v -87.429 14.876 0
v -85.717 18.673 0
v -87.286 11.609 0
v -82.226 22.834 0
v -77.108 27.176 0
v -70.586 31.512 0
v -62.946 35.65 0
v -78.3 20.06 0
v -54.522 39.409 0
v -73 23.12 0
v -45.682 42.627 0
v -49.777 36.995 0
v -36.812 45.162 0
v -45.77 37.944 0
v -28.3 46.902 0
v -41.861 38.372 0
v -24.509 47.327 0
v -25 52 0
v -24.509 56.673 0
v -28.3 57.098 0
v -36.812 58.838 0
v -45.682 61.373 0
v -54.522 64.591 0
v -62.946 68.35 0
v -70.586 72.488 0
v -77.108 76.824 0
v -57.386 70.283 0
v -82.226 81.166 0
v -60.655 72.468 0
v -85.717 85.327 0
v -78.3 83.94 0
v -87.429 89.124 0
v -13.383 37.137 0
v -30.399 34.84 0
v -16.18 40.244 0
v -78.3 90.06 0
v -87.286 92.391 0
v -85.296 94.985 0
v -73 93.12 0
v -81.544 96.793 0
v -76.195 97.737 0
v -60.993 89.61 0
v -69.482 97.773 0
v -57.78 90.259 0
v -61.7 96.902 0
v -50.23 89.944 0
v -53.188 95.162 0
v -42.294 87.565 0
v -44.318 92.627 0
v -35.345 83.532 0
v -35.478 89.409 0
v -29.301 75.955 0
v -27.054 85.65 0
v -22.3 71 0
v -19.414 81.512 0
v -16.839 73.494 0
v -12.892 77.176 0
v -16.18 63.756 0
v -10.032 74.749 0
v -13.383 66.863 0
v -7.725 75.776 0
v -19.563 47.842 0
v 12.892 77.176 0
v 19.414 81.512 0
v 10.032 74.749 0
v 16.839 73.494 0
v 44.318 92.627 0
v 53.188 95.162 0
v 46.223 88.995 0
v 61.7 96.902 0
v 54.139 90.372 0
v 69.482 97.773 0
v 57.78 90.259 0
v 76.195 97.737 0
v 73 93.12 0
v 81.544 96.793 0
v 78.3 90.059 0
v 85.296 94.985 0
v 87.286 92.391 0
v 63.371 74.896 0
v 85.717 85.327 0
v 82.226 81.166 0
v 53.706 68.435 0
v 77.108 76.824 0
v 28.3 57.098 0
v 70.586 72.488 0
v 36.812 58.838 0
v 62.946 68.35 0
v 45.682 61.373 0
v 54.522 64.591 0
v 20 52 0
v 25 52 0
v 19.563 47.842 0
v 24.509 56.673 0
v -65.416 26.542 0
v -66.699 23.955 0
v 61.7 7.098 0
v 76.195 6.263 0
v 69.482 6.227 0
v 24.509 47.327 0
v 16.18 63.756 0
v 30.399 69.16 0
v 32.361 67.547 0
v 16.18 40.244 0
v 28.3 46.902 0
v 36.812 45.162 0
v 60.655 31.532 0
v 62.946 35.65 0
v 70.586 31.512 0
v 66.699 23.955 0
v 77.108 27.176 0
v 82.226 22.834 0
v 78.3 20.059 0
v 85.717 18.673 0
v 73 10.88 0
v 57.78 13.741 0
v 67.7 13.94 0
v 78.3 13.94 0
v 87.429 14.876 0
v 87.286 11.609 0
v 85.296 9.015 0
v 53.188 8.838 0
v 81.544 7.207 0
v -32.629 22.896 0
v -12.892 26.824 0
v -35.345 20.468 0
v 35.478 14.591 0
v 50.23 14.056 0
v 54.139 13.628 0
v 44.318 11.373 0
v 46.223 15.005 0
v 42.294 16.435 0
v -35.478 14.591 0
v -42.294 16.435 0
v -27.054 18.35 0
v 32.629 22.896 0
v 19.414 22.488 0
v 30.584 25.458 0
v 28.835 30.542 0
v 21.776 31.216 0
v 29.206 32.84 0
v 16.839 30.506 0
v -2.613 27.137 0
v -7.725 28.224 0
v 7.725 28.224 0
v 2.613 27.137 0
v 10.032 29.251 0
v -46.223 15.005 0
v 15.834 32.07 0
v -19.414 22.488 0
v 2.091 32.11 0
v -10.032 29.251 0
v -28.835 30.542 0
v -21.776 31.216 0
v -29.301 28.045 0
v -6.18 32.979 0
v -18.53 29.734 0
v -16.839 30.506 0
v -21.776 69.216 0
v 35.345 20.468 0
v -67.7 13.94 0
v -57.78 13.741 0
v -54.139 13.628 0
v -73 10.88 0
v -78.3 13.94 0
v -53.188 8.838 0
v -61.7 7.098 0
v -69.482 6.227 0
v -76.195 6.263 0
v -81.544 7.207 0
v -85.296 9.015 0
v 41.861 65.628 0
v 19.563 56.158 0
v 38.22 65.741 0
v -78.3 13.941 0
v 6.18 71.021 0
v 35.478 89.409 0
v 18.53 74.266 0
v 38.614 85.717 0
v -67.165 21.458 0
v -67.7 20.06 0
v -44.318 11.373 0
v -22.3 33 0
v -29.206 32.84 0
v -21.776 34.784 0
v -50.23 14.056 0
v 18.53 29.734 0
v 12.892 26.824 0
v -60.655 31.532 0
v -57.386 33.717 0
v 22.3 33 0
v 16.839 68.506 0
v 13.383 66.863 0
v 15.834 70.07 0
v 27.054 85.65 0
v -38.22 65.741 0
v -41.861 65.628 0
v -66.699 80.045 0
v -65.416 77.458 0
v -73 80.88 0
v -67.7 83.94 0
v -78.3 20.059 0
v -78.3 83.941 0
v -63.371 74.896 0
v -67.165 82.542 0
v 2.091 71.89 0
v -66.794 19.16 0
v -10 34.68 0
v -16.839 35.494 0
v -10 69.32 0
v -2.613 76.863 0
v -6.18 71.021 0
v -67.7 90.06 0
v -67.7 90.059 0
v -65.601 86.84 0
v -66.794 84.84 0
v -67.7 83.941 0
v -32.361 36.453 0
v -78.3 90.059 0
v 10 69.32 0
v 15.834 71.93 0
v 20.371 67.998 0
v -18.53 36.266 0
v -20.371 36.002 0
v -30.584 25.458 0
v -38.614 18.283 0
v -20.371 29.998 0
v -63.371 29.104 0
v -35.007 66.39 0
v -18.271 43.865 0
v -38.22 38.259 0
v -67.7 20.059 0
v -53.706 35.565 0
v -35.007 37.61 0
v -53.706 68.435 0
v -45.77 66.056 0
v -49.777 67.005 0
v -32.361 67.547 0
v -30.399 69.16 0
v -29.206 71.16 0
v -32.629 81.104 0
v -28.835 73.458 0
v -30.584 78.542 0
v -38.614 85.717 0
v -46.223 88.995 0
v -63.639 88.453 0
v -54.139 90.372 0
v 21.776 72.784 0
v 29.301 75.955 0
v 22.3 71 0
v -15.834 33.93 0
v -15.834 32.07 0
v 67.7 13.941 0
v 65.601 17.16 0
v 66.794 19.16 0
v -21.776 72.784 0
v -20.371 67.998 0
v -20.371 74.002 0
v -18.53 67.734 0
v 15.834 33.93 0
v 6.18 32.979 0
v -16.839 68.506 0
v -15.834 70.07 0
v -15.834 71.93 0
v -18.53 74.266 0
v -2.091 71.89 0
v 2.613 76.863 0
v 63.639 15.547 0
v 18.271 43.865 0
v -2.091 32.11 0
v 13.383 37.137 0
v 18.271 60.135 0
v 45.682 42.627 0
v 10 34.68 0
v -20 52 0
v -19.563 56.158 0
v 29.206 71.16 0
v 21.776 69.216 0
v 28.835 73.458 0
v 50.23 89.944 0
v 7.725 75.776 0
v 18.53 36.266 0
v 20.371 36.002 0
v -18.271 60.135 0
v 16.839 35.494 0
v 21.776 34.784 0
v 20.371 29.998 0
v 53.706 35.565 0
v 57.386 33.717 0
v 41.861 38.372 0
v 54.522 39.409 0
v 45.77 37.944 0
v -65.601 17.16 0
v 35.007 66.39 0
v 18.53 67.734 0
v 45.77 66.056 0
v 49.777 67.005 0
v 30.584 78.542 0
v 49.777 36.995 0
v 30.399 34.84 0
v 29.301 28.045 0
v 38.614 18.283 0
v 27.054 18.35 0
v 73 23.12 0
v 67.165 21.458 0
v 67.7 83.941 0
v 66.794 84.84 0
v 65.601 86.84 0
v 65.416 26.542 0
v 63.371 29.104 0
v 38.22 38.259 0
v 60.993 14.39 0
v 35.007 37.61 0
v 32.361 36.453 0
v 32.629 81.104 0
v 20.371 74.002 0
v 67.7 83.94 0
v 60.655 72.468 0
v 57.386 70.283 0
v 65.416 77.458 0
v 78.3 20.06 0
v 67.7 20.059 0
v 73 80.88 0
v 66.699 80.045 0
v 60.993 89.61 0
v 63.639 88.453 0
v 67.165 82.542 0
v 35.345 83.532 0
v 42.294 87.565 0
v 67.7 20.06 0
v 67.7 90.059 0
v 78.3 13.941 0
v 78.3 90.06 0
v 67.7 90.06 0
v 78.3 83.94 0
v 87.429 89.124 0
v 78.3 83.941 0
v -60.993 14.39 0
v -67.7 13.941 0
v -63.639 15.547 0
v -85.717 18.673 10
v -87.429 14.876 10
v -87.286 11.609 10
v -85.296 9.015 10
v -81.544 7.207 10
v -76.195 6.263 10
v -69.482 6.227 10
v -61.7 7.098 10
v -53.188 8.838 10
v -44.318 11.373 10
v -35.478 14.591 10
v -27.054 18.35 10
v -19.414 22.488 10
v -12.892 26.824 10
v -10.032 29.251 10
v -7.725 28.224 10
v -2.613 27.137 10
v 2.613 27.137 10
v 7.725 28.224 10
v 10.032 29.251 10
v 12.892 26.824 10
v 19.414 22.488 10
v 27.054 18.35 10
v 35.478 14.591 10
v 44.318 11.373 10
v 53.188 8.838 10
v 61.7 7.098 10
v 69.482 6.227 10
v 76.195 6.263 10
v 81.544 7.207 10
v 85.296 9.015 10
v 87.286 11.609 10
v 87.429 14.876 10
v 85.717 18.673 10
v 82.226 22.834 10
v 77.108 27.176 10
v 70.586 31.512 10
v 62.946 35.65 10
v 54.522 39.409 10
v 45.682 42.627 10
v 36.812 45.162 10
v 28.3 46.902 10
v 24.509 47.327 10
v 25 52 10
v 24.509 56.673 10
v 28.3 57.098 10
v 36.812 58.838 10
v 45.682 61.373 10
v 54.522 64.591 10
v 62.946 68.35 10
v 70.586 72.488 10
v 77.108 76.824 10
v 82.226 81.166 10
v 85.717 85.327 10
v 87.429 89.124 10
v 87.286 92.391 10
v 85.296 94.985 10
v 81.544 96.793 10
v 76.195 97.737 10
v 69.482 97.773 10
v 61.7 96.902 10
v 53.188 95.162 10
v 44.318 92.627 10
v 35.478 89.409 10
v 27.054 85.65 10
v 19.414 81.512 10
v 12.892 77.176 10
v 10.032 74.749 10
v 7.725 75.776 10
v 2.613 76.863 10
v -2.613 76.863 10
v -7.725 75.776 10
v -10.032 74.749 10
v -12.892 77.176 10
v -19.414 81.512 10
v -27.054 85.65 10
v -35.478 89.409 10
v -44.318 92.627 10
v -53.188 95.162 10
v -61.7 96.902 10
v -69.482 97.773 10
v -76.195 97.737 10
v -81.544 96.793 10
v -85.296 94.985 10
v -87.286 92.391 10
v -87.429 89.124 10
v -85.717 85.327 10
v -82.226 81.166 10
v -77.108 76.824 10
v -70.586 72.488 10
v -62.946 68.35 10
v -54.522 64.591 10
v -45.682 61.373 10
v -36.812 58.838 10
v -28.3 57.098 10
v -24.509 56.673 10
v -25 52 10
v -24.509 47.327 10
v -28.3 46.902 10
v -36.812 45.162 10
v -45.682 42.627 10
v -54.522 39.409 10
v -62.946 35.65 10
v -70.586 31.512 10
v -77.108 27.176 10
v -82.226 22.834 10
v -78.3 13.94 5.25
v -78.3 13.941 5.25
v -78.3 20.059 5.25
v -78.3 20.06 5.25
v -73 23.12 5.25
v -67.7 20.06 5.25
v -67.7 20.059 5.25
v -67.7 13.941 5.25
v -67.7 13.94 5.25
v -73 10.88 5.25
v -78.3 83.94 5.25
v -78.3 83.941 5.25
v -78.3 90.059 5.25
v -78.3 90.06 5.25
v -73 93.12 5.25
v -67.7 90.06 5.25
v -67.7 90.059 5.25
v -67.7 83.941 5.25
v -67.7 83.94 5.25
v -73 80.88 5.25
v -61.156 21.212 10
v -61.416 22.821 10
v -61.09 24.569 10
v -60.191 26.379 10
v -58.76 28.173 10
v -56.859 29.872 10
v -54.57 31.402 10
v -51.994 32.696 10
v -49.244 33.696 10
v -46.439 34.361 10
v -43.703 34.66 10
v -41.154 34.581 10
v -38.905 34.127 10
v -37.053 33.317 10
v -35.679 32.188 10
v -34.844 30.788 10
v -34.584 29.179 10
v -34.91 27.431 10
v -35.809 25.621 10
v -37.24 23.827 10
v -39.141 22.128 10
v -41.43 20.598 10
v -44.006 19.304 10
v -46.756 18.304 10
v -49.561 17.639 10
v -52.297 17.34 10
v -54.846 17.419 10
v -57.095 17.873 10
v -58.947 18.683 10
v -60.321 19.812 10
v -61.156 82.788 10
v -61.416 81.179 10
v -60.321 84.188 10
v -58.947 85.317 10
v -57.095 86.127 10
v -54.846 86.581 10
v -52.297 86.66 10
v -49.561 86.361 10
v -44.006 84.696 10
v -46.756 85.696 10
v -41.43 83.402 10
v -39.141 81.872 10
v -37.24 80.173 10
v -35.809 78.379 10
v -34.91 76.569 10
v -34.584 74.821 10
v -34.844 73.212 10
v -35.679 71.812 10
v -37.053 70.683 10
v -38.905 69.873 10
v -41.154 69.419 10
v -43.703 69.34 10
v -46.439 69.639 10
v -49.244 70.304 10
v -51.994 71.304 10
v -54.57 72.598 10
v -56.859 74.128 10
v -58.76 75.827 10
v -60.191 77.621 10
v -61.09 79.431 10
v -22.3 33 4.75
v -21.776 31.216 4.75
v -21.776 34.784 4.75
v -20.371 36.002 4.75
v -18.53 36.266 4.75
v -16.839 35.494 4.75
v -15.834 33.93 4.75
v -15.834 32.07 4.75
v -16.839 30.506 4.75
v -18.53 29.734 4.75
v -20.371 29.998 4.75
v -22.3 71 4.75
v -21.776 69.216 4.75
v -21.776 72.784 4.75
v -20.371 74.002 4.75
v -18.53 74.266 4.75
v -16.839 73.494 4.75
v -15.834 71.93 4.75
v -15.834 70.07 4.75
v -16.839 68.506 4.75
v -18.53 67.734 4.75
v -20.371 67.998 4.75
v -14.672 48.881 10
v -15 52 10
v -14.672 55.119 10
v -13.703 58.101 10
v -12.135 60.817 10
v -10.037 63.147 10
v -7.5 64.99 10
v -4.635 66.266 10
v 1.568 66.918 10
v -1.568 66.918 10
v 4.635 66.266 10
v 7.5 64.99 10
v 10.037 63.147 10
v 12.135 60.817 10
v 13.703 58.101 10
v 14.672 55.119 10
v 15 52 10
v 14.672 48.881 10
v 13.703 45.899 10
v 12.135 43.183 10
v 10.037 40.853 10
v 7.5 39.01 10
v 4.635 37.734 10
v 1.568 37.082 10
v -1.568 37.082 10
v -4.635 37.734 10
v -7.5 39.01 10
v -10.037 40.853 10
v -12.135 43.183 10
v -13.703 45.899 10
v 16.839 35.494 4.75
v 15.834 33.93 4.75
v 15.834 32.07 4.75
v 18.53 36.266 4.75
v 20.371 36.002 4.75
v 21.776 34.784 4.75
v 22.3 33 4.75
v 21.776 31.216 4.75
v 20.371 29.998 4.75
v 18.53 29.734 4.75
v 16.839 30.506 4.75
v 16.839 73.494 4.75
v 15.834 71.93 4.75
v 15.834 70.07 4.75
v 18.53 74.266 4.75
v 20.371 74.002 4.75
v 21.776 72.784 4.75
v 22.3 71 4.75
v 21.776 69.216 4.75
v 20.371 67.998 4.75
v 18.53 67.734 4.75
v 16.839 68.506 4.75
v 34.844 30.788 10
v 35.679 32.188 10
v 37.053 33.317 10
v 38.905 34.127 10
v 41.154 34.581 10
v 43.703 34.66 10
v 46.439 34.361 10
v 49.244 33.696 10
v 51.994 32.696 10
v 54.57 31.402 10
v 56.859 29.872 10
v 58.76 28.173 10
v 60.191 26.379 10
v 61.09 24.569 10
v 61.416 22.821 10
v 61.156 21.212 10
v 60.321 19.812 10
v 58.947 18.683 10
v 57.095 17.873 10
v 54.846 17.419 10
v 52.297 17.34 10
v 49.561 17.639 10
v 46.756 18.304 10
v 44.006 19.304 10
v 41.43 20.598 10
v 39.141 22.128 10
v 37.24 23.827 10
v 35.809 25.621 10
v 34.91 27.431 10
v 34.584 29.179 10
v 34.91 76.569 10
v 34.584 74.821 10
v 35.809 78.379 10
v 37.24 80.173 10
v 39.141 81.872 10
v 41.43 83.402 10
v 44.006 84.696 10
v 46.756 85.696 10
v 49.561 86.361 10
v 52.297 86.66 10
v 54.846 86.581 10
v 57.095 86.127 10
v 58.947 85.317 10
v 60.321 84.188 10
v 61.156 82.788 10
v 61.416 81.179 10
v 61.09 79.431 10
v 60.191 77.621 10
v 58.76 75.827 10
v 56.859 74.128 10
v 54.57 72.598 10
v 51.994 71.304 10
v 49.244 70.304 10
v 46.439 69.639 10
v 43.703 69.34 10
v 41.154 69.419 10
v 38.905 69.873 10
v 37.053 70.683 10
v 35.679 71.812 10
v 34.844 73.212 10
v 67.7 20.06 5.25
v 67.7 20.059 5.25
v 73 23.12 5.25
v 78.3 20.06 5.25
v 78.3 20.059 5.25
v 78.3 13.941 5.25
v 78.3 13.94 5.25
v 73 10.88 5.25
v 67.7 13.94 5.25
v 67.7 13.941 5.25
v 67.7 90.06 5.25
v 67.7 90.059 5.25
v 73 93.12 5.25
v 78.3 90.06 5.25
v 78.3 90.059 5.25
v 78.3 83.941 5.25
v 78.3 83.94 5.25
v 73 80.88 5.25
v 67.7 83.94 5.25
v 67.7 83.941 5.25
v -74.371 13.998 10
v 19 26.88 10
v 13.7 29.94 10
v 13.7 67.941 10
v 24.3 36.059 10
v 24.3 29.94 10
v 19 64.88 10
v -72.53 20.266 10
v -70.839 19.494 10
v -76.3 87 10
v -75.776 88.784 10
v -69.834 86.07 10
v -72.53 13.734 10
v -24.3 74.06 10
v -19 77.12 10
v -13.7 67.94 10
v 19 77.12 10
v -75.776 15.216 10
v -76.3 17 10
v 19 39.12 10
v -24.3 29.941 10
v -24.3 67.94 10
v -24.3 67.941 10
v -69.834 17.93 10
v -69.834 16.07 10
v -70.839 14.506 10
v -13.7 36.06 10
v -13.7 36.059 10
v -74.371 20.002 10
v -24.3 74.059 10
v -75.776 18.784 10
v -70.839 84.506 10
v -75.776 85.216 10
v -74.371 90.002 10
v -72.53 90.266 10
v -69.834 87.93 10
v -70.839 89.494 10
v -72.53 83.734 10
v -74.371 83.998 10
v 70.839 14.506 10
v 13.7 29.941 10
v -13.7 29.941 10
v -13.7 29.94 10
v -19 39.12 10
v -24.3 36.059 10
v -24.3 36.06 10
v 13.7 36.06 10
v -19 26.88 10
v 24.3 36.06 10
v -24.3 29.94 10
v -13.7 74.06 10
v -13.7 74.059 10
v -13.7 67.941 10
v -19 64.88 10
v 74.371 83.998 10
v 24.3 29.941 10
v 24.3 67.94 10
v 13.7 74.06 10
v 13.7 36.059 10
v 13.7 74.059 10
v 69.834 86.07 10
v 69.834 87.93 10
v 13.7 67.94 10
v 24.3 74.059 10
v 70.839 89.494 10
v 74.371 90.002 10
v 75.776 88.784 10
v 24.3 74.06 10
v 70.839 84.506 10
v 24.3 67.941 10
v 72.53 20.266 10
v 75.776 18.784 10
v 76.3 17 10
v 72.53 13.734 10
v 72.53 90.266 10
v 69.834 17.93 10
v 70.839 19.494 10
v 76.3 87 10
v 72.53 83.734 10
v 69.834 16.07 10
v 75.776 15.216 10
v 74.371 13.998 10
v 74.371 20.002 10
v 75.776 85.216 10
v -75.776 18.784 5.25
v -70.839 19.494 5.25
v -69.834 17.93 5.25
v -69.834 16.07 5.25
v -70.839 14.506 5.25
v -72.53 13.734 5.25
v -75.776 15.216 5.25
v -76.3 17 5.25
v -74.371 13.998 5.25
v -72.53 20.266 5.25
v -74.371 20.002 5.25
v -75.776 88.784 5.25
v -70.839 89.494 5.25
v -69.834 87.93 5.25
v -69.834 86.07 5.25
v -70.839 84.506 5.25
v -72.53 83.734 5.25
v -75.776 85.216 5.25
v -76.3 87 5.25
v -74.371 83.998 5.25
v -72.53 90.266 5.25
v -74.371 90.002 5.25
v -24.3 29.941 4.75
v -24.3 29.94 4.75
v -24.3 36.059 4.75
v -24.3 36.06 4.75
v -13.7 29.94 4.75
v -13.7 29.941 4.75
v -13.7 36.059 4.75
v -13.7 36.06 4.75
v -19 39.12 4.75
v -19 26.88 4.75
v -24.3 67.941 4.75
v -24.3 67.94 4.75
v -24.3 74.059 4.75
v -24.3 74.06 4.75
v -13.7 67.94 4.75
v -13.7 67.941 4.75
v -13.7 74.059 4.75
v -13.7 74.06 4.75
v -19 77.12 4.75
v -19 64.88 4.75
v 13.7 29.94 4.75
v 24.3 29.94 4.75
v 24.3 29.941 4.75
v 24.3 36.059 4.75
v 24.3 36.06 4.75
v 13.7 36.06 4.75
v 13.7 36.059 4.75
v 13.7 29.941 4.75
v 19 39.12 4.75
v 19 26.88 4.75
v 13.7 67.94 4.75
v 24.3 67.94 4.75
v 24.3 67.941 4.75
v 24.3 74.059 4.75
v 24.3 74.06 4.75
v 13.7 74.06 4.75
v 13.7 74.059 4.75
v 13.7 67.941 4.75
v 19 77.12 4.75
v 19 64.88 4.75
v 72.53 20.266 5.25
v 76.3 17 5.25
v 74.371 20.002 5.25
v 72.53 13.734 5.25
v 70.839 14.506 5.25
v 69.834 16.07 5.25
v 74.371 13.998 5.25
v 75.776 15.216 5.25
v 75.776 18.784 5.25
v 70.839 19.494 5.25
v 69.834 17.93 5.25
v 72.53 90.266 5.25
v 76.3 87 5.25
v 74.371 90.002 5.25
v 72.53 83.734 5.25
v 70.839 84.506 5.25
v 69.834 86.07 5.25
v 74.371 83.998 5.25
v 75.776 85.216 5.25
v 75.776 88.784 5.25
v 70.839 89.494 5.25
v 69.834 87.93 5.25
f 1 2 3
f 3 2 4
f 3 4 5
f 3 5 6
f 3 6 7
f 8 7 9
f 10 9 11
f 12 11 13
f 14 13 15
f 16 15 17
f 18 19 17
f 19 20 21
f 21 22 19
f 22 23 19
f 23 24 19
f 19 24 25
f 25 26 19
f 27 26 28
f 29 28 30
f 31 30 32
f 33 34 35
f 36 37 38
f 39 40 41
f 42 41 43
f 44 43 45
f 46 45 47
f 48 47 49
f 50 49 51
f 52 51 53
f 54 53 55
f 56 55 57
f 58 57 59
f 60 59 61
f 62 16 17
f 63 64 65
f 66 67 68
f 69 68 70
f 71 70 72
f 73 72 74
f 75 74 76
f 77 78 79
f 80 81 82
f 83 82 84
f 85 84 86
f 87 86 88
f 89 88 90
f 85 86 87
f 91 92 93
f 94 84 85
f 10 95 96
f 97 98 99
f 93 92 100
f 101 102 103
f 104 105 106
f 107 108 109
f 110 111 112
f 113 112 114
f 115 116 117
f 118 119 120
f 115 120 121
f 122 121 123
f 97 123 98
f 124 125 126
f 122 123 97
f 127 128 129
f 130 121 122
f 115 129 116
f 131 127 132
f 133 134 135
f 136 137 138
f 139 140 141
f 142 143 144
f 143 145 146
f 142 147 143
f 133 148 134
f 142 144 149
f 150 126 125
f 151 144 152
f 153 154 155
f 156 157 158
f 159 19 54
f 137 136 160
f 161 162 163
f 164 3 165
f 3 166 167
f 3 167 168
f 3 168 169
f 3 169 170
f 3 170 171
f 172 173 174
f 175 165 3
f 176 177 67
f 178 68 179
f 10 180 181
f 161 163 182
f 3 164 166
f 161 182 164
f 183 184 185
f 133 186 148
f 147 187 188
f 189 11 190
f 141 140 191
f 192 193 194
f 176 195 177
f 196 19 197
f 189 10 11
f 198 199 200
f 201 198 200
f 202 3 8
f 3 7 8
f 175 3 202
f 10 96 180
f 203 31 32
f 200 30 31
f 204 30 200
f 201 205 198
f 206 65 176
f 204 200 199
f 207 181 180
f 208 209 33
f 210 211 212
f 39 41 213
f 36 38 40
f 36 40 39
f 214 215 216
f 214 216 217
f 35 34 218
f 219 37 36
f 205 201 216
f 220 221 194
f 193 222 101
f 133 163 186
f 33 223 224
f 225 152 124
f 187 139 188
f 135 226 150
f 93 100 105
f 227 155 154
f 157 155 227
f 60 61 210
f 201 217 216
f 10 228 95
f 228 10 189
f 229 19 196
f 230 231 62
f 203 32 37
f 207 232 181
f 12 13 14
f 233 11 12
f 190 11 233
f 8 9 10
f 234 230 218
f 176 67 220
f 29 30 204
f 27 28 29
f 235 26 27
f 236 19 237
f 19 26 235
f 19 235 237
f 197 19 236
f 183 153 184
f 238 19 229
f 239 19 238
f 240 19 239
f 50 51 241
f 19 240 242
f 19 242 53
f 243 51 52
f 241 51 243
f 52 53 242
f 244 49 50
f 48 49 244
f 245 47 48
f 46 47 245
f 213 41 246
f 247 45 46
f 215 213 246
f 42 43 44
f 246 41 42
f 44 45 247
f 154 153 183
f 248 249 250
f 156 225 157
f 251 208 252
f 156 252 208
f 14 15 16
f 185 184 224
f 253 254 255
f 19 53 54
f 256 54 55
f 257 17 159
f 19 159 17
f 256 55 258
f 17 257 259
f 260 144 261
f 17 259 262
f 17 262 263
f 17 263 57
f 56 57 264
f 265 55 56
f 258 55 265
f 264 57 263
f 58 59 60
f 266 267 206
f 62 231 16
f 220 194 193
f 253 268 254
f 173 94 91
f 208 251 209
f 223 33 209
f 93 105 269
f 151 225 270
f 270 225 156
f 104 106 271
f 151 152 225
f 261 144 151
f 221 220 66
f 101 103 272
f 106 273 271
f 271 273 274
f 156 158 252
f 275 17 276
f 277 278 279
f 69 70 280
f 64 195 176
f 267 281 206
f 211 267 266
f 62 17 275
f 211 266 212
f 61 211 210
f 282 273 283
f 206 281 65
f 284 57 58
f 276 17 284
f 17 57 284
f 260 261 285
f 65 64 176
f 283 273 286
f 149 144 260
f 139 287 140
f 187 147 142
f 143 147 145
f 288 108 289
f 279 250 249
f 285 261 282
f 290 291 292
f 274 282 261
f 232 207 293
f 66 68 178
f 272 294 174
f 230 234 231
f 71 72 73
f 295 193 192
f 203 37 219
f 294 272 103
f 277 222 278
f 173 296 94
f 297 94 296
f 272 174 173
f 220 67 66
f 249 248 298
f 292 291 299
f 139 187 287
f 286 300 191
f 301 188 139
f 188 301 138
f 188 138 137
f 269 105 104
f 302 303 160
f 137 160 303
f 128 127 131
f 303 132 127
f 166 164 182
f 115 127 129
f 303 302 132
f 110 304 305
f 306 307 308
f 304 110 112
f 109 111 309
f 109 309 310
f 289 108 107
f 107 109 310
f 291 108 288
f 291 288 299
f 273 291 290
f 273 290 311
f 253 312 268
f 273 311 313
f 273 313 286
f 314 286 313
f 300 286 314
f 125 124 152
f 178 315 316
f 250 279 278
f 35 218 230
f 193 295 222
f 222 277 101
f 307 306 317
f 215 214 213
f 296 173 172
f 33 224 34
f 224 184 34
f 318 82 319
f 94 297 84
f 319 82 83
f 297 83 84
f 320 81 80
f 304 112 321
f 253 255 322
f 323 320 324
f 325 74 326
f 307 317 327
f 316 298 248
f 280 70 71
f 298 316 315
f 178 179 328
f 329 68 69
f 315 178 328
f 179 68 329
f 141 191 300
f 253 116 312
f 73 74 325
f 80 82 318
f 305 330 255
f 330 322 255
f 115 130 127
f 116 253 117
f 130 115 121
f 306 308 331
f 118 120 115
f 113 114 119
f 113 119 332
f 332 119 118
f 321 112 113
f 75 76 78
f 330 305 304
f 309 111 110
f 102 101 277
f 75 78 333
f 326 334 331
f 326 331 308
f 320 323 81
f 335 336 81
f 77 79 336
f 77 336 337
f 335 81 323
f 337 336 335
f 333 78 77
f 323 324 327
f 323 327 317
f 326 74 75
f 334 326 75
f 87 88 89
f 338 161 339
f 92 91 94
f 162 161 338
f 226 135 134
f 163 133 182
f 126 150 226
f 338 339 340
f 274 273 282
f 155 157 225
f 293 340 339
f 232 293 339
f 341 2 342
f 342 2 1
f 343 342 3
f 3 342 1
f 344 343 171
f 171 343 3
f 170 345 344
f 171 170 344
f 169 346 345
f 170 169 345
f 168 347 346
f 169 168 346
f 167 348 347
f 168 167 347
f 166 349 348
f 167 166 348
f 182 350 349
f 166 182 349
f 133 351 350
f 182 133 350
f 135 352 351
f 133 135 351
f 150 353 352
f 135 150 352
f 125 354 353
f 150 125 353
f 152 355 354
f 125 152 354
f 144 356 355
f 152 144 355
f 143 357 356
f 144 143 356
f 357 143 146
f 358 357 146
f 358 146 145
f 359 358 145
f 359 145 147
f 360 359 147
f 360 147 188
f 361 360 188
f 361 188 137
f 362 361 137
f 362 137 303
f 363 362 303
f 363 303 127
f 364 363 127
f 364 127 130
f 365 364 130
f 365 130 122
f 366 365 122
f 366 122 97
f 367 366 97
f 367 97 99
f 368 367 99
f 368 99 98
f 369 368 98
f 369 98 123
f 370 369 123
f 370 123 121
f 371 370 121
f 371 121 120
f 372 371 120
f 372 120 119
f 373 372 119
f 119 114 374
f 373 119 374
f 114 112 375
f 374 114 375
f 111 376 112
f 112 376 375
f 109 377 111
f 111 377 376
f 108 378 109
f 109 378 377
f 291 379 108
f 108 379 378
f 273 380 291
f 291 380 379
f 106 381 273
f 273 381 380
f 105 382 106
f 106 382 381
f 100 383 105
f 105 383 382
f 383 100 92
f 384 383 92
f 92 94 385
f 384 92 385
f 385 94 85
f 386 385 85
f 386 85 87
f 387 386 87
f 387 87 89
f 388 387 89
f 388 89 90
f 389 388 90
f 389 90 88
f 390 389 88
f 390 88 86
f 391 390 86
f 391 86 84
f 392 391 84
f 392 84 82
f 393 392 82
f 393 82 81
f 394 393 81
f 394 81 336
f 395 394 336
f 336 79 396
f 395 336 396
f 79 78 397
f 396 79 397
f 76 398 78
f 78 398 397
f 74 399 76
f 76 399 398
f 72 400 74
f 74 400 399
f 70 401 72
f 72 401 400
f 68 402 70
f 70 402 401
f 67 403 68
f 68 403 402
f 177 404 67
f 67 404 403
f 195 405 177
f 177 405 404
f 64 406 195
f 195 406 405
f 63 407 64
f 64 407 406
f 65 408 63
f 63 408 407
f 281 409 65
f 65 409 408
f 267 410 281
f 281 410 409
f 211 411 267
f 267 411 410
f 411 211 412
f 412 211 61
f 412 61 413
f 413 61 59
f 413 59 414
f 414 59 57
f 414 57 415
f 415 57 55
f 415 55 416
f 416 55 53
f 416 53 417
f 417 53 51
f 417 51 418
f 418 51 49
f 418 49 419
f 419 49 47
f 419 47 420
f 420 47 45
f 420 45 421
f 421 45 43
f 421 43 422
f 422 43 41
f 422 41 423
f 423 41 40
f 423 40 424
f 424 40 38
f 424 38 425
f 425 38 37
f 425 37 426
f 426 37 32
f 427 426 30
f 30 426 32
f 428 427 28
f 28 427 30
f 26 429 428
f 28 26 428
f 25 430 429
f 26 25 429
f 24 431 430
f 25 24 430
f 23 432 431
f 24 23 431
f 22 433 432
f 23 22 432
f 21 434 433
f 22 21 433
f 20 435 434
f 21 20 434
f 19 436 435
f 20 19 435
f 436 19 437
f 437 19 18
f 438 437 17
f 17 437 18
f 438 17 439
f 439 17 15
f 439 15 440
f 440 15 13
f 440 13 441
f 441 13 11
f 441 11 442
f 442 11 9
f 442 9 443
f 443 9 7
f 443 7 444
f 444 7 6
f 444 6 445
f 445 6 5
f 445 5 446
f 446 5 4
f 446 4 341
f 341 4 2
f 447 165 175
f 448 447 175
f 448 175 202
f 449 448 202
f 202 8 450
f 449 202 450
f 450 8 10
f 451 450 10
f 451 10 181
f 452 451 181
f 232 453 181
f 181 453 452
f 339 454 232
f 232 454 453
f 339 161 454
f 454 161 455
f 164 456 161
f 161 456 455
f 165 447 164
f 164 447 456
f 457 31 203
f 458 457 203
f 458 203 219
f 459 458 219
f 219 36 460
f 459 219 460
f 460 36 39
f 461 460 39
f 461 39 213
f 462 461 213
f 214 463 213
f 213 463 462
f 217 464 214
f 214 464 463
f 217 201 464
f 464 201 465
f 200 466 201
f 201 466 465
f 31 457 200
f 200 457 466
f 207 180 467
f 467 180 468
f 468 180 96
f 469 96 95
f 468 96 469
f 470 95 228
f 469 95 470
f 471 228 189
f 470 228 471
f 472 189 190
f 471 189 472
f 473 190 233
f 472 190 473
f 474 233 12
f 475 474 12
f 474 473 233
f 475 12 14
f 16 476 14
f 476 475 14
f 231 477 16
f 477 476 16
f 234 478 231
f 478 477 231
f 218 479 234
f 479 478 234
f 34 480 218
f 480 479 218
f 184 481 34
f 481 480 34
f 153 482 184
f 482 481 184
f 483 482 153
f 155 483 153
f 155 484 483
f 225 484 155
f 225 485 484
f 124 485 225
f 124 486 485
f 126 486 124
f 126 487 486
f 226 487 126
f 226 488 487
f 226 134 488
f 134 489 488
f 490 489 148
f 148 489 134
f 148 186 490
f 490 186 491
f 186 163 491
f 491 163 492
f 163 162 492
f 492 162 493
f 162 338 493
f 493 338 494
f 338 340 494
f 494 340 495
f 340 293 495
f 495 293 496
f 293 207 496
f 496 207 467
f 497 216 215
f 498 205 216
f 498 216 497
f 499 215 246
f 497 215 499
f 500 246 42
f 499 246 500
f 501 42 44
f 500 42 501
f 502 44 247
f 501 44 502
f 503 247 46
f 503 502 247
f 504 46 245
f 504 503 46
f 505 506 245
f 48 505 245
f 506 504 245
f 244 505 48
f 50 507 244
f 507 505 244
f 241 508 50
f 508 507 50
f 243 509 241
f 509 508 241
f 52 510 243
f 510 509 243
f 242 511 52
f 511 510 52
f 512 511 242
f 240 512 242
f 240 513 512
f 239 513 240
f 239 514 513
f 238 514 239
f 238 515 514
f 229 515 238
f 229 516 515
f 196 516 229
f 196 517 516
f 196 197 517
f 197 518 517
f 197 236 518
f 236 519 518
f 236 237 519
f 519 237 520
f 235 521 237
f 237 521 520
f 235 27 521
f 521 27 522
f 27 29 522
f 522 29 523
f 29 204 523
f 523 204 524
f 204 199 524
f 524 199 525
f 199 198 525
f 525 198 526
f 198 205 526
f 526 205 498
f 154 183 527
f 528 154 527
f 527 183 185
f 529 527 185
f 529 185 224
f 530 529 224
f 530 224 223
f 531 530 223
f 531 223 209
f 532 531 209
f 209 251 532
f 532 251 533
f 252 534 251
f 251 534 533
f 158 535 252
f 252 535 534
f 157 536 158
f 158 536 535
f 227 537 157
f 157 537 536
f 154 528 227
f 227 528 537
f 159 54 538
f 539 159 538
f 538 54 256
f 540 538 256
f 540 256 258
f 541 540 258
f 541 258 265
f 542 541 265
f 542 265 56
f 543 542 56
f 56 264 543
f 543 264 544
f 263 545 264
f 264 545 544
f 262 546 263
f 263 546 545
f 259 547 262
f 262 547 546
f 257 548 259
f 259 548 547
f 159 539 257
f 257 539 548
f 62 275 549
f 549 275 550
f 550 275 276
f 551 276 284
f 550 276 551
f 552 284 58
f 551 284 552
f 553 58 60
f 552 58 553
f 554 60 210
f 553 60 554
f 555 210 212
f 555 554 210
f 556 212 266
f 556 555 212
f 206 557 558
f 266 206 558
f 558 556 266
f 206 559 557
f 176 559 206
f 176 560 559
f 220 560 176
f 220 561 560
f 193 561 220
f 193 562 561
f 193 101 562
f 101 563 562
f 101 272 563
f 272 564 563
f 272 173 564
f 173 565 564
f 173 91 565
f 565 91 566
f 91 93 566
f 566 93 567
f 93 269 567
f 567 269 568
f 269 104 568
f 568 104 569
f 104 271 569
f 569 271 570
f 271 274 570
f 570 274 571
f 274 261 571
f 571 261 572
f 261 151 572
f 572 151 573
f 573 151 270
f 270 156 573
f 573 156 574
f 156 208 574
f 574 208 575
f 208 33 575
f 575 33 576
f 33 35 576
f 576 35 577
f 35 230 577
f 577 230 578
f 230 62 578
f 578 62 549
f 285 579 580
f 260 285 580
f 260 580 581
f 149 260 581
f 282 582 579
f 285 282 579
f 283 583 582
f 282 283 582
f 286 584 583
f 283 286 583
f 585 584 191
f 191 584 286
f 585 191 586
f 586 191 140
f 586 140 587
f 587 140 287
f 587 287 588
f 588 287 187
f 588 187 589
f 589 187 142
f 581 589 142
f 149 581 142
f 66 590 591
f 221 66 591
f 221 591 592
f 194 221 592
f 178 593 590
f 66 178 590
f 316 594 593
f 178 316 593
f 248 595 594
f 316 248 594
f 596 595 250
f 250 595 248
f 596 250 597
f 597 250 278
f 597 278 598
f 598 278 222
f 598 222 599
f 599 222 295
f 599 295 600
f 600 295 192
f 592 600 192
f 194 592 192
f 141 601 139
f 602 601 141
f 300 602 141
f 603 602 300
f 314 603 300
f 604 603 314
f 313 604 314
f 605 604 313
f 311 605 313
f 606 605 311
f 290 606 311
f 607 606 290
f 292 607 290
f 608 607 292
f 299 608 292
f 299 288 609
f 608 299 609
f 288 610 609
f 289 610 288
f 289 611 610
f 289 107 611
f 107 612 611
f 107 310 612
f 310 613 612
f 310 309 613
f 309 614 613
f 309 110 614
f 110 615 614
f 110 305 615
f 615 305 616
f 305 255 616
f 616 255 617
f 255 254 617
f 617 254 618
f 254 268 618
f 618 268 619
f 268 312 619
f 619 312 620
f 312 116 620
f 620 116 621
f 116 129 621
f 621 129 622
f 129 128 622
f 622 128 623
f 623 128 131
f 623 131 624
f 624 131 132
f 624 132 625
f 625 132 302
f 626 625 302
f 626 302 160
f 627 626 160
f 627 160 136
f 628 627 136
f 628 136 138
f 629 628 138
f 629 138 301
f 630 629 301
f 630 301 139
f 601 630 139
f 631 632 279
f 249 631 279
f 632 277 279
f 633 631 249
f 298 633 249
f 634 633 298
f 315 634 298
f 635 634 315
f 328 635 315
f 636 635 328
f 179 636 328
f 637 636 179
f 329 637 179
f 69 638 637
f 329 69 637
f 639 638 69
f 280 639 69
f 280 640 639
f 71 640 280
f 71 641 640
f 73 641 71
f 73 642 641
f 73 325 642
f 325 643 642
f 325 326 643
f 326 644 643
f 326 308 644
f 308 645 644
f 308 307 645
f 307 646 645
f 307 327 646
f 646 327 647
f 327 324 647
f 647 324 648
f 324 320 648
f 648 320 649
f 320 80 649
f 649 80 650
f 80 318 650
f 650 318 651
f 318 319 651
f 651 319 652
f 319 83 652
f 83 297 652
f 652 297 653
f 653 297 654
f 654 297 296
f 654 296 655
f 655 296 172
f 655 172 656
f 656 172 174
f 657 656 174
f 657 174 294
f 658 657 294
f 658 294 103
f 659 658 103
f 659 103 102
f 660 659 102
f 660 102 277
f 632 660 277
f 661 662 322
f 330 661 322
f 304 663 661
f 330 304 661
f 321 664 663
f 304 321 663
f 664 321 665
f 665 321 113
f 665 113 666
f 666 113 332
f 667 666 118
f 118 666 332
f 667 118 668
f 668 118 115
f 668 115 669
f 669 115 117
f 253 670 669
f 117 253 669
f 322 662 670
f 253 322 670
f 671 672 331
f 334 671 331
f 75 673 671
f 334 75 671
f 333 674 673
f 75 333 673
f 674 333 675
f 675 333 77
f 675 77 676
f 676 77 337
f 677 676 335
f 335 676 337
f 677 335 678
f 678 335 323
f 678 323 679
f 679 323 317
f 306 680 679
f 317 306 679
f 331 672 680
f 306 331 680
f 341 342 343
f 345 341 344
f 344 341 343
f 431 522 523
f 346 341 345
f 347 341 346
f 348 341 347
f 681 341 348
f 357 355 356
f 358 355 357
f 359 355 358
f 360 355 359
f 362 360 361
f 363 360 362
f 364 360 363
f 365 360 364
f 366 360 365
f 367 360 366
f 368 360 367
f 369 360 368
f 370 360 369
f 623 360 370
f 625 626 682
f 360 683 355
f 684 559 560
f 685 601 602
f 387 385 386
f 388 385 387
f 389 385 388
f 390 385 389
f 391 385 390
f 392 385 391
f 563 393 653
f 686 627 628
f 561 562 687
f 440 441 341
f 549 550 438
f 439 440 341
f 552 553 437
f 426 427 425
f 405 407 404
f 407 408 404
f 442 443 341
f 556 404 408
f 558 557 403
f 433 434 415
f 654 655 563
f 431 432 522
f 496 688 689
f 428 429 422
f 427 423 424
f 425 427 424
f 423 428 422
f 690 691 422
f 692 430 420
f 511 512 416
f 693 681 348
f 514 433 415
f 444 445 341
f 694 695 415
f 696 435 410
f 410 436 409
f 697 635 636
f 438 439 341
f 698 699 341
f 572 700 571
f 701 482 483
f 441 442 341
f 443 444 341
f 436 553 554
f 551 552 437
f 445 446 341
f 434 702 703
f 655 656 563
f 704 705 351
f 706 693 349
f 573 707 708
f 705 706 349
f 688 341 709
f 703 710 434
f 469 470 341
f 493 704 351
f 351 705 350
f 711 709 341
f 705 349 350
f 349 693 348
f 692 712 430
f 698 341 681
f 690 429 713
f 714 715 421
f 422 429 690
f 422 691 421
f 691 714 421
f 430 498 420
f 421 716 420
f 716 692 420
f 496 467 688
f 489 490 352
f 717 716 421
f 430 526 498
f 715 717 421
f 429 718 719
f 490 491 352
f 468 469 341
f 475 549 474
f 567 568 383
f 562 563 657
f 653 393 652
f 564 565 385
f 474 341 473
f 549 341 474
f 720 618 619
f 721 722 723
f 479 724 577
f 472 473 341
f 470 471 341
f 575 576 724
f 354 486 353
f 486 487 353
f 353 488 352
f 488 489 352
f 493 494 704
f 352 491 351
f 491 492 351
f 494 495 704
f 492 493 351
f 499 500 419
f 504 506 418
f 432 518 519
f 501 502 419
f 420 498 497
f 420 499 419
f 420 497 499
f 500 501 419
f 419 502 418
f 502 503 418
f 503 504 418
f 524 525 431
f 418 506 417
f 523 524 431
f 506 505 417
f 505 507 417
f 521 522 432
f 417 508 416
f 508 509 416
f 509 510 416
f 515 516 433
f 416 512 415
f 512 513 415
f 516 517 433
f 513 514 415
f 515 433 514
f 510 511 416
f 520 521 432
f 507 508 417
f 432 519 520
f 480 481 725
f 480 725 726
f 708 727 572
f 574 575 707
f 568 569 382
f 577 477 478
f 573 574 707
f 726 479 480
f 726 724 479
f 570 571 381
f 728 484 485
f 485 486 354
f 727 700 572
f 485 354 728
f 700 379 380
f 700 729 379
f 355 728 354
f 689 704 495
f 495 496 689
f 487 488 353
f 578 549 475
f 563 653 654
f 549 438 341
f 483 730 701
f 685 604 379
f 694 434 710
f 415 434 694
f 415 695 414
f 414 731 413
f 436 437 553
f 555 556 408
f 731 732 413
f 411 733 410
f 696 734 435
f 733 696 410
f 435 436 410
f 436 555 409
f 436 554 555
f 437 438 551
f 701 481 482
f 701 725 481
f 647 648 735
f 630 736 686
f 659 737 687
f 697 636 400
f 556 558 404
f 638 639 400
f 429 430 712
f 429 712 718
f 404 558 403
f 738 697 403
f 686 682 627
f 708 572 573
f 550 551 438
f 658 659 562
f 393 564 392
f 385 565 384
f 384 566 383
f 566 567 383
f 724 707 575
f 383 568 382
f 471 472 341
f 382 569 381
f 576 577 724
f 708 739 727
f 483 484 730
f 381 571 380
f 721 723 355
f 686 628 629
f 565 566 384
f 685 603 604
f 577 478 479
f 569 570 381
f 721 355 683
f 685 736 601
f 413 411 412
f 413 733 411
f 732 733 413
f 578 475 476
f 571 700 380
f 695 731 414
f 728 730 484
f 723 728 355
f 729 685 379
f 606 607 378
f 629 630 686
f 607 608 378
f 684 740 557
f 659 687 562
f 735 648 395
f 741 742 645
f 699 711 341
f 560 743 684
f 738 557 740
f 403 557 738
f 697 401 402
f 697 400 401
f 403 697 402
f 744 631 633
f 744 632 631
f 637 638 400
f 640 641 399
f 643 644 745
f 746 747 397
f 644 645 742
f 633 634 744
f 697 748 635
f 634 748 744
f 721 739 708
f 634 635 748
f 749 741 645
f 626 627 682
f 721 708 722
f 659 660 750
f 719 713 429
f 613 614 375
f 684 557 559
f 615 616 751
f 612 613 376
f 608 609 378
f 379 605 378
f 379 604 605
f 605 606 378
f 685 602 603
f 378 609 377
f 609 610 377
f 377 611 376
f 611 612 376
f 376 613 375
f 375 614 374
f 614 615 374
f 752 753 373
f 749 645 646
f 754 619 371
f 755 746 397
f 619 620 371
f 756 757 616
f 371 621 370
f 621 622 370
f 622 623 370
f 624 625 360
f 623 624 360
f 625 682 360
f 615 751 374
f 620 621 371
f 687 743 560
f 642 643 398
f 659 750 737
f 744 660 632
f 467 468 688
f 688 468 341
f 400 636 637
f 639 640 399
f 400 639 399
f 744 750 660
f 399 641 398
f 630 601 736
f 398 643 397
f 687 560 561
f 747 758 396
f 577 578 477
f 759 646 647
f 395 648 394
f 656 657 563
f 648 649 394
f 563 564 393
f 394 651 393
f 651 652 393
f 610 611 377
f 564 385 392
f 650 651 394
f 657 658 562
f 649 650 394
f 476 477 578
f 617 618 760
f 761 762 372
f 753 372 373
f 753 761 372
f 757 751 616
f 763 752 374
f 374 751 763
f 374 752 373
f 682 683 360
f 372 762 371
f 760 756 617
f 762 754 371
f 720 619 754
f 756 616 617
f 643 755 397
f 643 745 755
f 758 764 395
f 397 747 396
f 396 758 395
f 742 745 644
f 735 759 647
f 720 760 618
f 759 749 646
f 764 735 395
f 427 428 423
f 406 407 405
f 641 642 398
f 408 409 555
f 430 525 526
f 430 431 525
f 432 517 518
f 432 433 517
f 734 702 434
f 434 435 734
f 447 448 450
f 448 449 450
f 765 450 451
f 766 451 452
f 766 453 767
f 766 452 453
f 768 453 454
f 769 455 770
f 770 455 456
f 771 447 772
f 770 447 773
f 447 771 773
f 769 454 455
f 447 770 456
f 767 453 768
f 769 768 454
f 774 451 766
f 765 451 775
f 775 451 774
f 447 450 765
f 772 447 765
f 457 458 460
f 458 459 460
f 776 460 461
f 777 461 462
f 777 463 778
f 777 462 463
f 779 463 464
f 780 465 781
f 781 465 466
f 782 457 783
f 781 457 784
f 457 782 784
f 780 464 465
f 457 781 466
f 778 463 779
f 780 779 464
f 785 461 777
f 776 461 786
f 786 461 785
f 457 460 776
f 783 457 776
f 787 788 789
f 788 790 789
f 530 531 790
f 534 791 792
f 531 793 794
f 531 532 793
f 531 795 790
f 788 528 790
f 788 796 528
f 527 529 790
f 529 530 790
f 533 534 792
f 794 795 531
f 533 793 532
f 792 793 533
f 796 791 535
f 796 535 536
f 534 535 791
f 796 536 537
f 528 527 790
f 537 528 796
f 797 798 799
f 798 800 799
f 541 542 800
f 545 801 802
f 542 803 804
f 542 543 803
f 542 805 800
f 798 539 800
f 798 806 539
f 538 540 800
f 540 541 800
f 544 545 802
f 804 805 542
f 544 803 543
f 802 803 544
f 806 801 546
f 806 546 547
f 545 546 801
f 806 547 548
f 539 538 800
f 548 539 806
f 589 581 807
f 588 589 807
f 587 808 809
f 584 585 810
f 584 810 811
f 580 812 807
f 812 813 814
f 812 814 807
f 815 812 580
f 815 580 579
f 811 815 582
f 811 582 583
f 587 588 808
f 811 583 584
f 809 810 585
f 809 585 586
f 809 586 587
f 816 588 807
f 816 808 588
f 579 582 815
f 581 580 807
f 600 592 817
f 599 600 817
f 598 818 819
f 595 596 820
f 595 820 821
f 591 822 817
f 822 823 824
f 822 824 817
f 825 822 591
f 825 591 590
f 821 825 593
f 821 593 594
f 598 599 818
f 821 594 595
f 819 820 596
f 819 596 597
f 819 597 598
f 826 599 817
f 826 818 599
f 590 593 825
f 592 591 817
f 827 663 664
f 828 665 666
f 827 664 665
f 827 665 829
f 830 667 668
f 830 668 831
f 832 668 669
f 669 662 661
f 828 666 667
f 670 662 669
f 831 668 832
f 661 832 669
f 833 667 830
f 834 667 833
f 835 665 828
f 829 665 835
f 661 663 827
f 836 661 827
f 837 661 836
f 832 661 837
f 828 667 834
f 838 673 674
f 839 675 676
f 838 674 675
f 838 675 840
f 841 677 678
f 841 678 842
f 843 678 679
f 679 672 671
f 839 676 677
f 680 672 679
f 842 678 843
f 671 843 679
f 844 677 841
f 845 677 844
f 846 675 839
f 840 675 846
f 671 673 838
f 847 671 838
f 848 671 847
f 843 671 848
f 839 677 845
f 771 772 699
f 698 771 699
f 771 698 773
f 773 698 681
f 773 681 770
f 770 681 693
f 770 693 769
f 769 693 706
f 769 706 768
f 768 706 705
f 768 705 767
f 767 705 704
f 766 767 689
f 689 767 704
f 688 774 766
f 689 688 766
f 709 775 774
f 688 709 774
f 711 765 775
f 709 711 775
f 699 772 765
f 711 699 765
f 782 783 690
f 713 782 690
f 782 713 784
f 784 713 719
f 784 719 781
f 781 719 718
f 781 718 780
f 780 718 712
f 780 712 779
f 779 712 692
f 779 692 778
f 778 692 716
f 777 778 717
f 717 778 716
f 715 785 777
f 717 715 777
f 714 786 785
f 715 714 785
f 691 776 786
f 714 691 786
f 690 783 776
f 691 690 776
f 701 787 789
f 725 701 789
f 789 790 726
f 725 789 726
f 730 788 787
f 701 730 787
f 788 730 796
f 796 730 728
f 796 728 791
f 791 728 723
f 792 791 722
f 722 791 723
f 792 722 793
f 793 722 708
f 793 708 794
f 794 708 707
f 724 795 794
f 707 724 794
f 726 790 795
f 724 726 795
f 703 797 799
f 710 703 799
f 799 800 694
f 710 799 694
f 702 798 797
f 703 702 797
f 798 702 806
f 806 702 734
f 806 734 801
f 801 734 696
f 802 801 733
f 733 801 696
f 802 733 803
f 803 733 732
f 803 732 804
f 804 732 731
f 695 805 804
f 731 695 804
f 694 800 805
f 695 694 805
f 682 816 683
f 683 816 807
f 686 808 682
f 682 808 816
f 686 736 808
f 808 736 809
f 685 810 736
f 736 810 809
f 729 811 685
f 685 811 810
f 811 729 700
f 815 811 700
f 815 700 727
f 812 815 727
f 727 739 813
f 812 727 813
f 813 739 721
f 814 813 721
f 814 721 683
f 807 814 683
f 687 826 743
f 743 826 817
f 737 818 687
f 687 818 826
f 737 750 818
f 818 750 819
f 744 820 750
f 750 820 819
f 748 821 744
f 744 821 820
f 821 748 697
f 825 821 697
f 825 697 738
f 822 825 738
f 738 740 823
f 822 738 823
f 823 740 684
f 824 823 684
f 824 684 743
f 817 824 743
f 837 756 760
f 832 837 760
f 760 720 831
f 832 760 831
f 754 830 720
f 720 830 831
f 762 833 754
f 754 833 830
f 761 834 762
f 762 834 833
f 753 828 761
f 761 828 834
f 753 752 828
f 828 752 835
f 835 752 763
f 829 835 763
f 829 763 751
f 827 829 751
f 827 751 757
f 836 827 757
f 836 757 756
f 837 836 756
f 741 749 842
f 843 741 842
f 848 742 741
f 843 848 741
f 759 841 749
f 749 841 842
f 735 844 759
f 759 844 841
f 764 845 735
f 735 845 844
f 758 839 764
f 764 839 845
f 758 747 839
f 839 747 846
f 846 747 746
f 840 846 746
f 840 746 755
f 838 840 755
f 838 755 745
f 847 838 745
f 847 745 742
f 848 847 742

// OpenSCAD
g_thick = 10;
plate_mount();
module plate_mount(){
union(){
mirror([1,0,0]) plate_half();
plate_half();
}//end union
}//end part

module plate_half(){
//subtract the bolt holes
difference(){
body();
translate([73,17,10]) rotate([180,0,0]) m6_bolt();
translate([73,87,10]) rotate([180,0,0]) m6_bolt();
translate([19,33,0]) m6_bolt();
translate([19,71,0]) m6_bolt();
//cut out some from the middle for weight
translate([0,52,0]) cylinder(r1=20,r2=15,h=g_thick);
}//end diff

}//end part


module body(){
intersection(){
cube([90,104,g_thick]);

union(){
difference(){
translate([45,77,0]) rotate([0,0,20]) scale([3,1,1]) cylinder(r=15,h=g_thick);
translate([48,78,0]) rotate([0,0,20]) scale([2,1.1,1]) cylinder(r1=10,r2=7,h=g_thick);
}
difference(){
translate([45,27,0]) rotate([0,0,-20]) scale([3,1,1]) cylinder(r=15,h=g_thick);
translate([48,26,0]) rotate([0,0,-20]) scale([2,1.1,1]) cylinder(r1=10,r2=7,h=g_thick);
}
translate([0,52,0]) cylinder(r=25,h=g_thick);

}//end union
}//end intersection
}//end body


module m6_bolt(){
m6_nut_width = 10.6;
union(){
translate([0,0,-1]) cylinder(r=3.3,h=11);
translate([0,0,7.5]) nut_cap(m6_nut_width,5.5);
}
}

module nut_cap(nut_size,depth){
union(){
for(a = [0,60,120]){
rotate([0,0,a]) cube([nut_size,.5774*nut_size,depth],center = true);
}//end for
}//end union
}
